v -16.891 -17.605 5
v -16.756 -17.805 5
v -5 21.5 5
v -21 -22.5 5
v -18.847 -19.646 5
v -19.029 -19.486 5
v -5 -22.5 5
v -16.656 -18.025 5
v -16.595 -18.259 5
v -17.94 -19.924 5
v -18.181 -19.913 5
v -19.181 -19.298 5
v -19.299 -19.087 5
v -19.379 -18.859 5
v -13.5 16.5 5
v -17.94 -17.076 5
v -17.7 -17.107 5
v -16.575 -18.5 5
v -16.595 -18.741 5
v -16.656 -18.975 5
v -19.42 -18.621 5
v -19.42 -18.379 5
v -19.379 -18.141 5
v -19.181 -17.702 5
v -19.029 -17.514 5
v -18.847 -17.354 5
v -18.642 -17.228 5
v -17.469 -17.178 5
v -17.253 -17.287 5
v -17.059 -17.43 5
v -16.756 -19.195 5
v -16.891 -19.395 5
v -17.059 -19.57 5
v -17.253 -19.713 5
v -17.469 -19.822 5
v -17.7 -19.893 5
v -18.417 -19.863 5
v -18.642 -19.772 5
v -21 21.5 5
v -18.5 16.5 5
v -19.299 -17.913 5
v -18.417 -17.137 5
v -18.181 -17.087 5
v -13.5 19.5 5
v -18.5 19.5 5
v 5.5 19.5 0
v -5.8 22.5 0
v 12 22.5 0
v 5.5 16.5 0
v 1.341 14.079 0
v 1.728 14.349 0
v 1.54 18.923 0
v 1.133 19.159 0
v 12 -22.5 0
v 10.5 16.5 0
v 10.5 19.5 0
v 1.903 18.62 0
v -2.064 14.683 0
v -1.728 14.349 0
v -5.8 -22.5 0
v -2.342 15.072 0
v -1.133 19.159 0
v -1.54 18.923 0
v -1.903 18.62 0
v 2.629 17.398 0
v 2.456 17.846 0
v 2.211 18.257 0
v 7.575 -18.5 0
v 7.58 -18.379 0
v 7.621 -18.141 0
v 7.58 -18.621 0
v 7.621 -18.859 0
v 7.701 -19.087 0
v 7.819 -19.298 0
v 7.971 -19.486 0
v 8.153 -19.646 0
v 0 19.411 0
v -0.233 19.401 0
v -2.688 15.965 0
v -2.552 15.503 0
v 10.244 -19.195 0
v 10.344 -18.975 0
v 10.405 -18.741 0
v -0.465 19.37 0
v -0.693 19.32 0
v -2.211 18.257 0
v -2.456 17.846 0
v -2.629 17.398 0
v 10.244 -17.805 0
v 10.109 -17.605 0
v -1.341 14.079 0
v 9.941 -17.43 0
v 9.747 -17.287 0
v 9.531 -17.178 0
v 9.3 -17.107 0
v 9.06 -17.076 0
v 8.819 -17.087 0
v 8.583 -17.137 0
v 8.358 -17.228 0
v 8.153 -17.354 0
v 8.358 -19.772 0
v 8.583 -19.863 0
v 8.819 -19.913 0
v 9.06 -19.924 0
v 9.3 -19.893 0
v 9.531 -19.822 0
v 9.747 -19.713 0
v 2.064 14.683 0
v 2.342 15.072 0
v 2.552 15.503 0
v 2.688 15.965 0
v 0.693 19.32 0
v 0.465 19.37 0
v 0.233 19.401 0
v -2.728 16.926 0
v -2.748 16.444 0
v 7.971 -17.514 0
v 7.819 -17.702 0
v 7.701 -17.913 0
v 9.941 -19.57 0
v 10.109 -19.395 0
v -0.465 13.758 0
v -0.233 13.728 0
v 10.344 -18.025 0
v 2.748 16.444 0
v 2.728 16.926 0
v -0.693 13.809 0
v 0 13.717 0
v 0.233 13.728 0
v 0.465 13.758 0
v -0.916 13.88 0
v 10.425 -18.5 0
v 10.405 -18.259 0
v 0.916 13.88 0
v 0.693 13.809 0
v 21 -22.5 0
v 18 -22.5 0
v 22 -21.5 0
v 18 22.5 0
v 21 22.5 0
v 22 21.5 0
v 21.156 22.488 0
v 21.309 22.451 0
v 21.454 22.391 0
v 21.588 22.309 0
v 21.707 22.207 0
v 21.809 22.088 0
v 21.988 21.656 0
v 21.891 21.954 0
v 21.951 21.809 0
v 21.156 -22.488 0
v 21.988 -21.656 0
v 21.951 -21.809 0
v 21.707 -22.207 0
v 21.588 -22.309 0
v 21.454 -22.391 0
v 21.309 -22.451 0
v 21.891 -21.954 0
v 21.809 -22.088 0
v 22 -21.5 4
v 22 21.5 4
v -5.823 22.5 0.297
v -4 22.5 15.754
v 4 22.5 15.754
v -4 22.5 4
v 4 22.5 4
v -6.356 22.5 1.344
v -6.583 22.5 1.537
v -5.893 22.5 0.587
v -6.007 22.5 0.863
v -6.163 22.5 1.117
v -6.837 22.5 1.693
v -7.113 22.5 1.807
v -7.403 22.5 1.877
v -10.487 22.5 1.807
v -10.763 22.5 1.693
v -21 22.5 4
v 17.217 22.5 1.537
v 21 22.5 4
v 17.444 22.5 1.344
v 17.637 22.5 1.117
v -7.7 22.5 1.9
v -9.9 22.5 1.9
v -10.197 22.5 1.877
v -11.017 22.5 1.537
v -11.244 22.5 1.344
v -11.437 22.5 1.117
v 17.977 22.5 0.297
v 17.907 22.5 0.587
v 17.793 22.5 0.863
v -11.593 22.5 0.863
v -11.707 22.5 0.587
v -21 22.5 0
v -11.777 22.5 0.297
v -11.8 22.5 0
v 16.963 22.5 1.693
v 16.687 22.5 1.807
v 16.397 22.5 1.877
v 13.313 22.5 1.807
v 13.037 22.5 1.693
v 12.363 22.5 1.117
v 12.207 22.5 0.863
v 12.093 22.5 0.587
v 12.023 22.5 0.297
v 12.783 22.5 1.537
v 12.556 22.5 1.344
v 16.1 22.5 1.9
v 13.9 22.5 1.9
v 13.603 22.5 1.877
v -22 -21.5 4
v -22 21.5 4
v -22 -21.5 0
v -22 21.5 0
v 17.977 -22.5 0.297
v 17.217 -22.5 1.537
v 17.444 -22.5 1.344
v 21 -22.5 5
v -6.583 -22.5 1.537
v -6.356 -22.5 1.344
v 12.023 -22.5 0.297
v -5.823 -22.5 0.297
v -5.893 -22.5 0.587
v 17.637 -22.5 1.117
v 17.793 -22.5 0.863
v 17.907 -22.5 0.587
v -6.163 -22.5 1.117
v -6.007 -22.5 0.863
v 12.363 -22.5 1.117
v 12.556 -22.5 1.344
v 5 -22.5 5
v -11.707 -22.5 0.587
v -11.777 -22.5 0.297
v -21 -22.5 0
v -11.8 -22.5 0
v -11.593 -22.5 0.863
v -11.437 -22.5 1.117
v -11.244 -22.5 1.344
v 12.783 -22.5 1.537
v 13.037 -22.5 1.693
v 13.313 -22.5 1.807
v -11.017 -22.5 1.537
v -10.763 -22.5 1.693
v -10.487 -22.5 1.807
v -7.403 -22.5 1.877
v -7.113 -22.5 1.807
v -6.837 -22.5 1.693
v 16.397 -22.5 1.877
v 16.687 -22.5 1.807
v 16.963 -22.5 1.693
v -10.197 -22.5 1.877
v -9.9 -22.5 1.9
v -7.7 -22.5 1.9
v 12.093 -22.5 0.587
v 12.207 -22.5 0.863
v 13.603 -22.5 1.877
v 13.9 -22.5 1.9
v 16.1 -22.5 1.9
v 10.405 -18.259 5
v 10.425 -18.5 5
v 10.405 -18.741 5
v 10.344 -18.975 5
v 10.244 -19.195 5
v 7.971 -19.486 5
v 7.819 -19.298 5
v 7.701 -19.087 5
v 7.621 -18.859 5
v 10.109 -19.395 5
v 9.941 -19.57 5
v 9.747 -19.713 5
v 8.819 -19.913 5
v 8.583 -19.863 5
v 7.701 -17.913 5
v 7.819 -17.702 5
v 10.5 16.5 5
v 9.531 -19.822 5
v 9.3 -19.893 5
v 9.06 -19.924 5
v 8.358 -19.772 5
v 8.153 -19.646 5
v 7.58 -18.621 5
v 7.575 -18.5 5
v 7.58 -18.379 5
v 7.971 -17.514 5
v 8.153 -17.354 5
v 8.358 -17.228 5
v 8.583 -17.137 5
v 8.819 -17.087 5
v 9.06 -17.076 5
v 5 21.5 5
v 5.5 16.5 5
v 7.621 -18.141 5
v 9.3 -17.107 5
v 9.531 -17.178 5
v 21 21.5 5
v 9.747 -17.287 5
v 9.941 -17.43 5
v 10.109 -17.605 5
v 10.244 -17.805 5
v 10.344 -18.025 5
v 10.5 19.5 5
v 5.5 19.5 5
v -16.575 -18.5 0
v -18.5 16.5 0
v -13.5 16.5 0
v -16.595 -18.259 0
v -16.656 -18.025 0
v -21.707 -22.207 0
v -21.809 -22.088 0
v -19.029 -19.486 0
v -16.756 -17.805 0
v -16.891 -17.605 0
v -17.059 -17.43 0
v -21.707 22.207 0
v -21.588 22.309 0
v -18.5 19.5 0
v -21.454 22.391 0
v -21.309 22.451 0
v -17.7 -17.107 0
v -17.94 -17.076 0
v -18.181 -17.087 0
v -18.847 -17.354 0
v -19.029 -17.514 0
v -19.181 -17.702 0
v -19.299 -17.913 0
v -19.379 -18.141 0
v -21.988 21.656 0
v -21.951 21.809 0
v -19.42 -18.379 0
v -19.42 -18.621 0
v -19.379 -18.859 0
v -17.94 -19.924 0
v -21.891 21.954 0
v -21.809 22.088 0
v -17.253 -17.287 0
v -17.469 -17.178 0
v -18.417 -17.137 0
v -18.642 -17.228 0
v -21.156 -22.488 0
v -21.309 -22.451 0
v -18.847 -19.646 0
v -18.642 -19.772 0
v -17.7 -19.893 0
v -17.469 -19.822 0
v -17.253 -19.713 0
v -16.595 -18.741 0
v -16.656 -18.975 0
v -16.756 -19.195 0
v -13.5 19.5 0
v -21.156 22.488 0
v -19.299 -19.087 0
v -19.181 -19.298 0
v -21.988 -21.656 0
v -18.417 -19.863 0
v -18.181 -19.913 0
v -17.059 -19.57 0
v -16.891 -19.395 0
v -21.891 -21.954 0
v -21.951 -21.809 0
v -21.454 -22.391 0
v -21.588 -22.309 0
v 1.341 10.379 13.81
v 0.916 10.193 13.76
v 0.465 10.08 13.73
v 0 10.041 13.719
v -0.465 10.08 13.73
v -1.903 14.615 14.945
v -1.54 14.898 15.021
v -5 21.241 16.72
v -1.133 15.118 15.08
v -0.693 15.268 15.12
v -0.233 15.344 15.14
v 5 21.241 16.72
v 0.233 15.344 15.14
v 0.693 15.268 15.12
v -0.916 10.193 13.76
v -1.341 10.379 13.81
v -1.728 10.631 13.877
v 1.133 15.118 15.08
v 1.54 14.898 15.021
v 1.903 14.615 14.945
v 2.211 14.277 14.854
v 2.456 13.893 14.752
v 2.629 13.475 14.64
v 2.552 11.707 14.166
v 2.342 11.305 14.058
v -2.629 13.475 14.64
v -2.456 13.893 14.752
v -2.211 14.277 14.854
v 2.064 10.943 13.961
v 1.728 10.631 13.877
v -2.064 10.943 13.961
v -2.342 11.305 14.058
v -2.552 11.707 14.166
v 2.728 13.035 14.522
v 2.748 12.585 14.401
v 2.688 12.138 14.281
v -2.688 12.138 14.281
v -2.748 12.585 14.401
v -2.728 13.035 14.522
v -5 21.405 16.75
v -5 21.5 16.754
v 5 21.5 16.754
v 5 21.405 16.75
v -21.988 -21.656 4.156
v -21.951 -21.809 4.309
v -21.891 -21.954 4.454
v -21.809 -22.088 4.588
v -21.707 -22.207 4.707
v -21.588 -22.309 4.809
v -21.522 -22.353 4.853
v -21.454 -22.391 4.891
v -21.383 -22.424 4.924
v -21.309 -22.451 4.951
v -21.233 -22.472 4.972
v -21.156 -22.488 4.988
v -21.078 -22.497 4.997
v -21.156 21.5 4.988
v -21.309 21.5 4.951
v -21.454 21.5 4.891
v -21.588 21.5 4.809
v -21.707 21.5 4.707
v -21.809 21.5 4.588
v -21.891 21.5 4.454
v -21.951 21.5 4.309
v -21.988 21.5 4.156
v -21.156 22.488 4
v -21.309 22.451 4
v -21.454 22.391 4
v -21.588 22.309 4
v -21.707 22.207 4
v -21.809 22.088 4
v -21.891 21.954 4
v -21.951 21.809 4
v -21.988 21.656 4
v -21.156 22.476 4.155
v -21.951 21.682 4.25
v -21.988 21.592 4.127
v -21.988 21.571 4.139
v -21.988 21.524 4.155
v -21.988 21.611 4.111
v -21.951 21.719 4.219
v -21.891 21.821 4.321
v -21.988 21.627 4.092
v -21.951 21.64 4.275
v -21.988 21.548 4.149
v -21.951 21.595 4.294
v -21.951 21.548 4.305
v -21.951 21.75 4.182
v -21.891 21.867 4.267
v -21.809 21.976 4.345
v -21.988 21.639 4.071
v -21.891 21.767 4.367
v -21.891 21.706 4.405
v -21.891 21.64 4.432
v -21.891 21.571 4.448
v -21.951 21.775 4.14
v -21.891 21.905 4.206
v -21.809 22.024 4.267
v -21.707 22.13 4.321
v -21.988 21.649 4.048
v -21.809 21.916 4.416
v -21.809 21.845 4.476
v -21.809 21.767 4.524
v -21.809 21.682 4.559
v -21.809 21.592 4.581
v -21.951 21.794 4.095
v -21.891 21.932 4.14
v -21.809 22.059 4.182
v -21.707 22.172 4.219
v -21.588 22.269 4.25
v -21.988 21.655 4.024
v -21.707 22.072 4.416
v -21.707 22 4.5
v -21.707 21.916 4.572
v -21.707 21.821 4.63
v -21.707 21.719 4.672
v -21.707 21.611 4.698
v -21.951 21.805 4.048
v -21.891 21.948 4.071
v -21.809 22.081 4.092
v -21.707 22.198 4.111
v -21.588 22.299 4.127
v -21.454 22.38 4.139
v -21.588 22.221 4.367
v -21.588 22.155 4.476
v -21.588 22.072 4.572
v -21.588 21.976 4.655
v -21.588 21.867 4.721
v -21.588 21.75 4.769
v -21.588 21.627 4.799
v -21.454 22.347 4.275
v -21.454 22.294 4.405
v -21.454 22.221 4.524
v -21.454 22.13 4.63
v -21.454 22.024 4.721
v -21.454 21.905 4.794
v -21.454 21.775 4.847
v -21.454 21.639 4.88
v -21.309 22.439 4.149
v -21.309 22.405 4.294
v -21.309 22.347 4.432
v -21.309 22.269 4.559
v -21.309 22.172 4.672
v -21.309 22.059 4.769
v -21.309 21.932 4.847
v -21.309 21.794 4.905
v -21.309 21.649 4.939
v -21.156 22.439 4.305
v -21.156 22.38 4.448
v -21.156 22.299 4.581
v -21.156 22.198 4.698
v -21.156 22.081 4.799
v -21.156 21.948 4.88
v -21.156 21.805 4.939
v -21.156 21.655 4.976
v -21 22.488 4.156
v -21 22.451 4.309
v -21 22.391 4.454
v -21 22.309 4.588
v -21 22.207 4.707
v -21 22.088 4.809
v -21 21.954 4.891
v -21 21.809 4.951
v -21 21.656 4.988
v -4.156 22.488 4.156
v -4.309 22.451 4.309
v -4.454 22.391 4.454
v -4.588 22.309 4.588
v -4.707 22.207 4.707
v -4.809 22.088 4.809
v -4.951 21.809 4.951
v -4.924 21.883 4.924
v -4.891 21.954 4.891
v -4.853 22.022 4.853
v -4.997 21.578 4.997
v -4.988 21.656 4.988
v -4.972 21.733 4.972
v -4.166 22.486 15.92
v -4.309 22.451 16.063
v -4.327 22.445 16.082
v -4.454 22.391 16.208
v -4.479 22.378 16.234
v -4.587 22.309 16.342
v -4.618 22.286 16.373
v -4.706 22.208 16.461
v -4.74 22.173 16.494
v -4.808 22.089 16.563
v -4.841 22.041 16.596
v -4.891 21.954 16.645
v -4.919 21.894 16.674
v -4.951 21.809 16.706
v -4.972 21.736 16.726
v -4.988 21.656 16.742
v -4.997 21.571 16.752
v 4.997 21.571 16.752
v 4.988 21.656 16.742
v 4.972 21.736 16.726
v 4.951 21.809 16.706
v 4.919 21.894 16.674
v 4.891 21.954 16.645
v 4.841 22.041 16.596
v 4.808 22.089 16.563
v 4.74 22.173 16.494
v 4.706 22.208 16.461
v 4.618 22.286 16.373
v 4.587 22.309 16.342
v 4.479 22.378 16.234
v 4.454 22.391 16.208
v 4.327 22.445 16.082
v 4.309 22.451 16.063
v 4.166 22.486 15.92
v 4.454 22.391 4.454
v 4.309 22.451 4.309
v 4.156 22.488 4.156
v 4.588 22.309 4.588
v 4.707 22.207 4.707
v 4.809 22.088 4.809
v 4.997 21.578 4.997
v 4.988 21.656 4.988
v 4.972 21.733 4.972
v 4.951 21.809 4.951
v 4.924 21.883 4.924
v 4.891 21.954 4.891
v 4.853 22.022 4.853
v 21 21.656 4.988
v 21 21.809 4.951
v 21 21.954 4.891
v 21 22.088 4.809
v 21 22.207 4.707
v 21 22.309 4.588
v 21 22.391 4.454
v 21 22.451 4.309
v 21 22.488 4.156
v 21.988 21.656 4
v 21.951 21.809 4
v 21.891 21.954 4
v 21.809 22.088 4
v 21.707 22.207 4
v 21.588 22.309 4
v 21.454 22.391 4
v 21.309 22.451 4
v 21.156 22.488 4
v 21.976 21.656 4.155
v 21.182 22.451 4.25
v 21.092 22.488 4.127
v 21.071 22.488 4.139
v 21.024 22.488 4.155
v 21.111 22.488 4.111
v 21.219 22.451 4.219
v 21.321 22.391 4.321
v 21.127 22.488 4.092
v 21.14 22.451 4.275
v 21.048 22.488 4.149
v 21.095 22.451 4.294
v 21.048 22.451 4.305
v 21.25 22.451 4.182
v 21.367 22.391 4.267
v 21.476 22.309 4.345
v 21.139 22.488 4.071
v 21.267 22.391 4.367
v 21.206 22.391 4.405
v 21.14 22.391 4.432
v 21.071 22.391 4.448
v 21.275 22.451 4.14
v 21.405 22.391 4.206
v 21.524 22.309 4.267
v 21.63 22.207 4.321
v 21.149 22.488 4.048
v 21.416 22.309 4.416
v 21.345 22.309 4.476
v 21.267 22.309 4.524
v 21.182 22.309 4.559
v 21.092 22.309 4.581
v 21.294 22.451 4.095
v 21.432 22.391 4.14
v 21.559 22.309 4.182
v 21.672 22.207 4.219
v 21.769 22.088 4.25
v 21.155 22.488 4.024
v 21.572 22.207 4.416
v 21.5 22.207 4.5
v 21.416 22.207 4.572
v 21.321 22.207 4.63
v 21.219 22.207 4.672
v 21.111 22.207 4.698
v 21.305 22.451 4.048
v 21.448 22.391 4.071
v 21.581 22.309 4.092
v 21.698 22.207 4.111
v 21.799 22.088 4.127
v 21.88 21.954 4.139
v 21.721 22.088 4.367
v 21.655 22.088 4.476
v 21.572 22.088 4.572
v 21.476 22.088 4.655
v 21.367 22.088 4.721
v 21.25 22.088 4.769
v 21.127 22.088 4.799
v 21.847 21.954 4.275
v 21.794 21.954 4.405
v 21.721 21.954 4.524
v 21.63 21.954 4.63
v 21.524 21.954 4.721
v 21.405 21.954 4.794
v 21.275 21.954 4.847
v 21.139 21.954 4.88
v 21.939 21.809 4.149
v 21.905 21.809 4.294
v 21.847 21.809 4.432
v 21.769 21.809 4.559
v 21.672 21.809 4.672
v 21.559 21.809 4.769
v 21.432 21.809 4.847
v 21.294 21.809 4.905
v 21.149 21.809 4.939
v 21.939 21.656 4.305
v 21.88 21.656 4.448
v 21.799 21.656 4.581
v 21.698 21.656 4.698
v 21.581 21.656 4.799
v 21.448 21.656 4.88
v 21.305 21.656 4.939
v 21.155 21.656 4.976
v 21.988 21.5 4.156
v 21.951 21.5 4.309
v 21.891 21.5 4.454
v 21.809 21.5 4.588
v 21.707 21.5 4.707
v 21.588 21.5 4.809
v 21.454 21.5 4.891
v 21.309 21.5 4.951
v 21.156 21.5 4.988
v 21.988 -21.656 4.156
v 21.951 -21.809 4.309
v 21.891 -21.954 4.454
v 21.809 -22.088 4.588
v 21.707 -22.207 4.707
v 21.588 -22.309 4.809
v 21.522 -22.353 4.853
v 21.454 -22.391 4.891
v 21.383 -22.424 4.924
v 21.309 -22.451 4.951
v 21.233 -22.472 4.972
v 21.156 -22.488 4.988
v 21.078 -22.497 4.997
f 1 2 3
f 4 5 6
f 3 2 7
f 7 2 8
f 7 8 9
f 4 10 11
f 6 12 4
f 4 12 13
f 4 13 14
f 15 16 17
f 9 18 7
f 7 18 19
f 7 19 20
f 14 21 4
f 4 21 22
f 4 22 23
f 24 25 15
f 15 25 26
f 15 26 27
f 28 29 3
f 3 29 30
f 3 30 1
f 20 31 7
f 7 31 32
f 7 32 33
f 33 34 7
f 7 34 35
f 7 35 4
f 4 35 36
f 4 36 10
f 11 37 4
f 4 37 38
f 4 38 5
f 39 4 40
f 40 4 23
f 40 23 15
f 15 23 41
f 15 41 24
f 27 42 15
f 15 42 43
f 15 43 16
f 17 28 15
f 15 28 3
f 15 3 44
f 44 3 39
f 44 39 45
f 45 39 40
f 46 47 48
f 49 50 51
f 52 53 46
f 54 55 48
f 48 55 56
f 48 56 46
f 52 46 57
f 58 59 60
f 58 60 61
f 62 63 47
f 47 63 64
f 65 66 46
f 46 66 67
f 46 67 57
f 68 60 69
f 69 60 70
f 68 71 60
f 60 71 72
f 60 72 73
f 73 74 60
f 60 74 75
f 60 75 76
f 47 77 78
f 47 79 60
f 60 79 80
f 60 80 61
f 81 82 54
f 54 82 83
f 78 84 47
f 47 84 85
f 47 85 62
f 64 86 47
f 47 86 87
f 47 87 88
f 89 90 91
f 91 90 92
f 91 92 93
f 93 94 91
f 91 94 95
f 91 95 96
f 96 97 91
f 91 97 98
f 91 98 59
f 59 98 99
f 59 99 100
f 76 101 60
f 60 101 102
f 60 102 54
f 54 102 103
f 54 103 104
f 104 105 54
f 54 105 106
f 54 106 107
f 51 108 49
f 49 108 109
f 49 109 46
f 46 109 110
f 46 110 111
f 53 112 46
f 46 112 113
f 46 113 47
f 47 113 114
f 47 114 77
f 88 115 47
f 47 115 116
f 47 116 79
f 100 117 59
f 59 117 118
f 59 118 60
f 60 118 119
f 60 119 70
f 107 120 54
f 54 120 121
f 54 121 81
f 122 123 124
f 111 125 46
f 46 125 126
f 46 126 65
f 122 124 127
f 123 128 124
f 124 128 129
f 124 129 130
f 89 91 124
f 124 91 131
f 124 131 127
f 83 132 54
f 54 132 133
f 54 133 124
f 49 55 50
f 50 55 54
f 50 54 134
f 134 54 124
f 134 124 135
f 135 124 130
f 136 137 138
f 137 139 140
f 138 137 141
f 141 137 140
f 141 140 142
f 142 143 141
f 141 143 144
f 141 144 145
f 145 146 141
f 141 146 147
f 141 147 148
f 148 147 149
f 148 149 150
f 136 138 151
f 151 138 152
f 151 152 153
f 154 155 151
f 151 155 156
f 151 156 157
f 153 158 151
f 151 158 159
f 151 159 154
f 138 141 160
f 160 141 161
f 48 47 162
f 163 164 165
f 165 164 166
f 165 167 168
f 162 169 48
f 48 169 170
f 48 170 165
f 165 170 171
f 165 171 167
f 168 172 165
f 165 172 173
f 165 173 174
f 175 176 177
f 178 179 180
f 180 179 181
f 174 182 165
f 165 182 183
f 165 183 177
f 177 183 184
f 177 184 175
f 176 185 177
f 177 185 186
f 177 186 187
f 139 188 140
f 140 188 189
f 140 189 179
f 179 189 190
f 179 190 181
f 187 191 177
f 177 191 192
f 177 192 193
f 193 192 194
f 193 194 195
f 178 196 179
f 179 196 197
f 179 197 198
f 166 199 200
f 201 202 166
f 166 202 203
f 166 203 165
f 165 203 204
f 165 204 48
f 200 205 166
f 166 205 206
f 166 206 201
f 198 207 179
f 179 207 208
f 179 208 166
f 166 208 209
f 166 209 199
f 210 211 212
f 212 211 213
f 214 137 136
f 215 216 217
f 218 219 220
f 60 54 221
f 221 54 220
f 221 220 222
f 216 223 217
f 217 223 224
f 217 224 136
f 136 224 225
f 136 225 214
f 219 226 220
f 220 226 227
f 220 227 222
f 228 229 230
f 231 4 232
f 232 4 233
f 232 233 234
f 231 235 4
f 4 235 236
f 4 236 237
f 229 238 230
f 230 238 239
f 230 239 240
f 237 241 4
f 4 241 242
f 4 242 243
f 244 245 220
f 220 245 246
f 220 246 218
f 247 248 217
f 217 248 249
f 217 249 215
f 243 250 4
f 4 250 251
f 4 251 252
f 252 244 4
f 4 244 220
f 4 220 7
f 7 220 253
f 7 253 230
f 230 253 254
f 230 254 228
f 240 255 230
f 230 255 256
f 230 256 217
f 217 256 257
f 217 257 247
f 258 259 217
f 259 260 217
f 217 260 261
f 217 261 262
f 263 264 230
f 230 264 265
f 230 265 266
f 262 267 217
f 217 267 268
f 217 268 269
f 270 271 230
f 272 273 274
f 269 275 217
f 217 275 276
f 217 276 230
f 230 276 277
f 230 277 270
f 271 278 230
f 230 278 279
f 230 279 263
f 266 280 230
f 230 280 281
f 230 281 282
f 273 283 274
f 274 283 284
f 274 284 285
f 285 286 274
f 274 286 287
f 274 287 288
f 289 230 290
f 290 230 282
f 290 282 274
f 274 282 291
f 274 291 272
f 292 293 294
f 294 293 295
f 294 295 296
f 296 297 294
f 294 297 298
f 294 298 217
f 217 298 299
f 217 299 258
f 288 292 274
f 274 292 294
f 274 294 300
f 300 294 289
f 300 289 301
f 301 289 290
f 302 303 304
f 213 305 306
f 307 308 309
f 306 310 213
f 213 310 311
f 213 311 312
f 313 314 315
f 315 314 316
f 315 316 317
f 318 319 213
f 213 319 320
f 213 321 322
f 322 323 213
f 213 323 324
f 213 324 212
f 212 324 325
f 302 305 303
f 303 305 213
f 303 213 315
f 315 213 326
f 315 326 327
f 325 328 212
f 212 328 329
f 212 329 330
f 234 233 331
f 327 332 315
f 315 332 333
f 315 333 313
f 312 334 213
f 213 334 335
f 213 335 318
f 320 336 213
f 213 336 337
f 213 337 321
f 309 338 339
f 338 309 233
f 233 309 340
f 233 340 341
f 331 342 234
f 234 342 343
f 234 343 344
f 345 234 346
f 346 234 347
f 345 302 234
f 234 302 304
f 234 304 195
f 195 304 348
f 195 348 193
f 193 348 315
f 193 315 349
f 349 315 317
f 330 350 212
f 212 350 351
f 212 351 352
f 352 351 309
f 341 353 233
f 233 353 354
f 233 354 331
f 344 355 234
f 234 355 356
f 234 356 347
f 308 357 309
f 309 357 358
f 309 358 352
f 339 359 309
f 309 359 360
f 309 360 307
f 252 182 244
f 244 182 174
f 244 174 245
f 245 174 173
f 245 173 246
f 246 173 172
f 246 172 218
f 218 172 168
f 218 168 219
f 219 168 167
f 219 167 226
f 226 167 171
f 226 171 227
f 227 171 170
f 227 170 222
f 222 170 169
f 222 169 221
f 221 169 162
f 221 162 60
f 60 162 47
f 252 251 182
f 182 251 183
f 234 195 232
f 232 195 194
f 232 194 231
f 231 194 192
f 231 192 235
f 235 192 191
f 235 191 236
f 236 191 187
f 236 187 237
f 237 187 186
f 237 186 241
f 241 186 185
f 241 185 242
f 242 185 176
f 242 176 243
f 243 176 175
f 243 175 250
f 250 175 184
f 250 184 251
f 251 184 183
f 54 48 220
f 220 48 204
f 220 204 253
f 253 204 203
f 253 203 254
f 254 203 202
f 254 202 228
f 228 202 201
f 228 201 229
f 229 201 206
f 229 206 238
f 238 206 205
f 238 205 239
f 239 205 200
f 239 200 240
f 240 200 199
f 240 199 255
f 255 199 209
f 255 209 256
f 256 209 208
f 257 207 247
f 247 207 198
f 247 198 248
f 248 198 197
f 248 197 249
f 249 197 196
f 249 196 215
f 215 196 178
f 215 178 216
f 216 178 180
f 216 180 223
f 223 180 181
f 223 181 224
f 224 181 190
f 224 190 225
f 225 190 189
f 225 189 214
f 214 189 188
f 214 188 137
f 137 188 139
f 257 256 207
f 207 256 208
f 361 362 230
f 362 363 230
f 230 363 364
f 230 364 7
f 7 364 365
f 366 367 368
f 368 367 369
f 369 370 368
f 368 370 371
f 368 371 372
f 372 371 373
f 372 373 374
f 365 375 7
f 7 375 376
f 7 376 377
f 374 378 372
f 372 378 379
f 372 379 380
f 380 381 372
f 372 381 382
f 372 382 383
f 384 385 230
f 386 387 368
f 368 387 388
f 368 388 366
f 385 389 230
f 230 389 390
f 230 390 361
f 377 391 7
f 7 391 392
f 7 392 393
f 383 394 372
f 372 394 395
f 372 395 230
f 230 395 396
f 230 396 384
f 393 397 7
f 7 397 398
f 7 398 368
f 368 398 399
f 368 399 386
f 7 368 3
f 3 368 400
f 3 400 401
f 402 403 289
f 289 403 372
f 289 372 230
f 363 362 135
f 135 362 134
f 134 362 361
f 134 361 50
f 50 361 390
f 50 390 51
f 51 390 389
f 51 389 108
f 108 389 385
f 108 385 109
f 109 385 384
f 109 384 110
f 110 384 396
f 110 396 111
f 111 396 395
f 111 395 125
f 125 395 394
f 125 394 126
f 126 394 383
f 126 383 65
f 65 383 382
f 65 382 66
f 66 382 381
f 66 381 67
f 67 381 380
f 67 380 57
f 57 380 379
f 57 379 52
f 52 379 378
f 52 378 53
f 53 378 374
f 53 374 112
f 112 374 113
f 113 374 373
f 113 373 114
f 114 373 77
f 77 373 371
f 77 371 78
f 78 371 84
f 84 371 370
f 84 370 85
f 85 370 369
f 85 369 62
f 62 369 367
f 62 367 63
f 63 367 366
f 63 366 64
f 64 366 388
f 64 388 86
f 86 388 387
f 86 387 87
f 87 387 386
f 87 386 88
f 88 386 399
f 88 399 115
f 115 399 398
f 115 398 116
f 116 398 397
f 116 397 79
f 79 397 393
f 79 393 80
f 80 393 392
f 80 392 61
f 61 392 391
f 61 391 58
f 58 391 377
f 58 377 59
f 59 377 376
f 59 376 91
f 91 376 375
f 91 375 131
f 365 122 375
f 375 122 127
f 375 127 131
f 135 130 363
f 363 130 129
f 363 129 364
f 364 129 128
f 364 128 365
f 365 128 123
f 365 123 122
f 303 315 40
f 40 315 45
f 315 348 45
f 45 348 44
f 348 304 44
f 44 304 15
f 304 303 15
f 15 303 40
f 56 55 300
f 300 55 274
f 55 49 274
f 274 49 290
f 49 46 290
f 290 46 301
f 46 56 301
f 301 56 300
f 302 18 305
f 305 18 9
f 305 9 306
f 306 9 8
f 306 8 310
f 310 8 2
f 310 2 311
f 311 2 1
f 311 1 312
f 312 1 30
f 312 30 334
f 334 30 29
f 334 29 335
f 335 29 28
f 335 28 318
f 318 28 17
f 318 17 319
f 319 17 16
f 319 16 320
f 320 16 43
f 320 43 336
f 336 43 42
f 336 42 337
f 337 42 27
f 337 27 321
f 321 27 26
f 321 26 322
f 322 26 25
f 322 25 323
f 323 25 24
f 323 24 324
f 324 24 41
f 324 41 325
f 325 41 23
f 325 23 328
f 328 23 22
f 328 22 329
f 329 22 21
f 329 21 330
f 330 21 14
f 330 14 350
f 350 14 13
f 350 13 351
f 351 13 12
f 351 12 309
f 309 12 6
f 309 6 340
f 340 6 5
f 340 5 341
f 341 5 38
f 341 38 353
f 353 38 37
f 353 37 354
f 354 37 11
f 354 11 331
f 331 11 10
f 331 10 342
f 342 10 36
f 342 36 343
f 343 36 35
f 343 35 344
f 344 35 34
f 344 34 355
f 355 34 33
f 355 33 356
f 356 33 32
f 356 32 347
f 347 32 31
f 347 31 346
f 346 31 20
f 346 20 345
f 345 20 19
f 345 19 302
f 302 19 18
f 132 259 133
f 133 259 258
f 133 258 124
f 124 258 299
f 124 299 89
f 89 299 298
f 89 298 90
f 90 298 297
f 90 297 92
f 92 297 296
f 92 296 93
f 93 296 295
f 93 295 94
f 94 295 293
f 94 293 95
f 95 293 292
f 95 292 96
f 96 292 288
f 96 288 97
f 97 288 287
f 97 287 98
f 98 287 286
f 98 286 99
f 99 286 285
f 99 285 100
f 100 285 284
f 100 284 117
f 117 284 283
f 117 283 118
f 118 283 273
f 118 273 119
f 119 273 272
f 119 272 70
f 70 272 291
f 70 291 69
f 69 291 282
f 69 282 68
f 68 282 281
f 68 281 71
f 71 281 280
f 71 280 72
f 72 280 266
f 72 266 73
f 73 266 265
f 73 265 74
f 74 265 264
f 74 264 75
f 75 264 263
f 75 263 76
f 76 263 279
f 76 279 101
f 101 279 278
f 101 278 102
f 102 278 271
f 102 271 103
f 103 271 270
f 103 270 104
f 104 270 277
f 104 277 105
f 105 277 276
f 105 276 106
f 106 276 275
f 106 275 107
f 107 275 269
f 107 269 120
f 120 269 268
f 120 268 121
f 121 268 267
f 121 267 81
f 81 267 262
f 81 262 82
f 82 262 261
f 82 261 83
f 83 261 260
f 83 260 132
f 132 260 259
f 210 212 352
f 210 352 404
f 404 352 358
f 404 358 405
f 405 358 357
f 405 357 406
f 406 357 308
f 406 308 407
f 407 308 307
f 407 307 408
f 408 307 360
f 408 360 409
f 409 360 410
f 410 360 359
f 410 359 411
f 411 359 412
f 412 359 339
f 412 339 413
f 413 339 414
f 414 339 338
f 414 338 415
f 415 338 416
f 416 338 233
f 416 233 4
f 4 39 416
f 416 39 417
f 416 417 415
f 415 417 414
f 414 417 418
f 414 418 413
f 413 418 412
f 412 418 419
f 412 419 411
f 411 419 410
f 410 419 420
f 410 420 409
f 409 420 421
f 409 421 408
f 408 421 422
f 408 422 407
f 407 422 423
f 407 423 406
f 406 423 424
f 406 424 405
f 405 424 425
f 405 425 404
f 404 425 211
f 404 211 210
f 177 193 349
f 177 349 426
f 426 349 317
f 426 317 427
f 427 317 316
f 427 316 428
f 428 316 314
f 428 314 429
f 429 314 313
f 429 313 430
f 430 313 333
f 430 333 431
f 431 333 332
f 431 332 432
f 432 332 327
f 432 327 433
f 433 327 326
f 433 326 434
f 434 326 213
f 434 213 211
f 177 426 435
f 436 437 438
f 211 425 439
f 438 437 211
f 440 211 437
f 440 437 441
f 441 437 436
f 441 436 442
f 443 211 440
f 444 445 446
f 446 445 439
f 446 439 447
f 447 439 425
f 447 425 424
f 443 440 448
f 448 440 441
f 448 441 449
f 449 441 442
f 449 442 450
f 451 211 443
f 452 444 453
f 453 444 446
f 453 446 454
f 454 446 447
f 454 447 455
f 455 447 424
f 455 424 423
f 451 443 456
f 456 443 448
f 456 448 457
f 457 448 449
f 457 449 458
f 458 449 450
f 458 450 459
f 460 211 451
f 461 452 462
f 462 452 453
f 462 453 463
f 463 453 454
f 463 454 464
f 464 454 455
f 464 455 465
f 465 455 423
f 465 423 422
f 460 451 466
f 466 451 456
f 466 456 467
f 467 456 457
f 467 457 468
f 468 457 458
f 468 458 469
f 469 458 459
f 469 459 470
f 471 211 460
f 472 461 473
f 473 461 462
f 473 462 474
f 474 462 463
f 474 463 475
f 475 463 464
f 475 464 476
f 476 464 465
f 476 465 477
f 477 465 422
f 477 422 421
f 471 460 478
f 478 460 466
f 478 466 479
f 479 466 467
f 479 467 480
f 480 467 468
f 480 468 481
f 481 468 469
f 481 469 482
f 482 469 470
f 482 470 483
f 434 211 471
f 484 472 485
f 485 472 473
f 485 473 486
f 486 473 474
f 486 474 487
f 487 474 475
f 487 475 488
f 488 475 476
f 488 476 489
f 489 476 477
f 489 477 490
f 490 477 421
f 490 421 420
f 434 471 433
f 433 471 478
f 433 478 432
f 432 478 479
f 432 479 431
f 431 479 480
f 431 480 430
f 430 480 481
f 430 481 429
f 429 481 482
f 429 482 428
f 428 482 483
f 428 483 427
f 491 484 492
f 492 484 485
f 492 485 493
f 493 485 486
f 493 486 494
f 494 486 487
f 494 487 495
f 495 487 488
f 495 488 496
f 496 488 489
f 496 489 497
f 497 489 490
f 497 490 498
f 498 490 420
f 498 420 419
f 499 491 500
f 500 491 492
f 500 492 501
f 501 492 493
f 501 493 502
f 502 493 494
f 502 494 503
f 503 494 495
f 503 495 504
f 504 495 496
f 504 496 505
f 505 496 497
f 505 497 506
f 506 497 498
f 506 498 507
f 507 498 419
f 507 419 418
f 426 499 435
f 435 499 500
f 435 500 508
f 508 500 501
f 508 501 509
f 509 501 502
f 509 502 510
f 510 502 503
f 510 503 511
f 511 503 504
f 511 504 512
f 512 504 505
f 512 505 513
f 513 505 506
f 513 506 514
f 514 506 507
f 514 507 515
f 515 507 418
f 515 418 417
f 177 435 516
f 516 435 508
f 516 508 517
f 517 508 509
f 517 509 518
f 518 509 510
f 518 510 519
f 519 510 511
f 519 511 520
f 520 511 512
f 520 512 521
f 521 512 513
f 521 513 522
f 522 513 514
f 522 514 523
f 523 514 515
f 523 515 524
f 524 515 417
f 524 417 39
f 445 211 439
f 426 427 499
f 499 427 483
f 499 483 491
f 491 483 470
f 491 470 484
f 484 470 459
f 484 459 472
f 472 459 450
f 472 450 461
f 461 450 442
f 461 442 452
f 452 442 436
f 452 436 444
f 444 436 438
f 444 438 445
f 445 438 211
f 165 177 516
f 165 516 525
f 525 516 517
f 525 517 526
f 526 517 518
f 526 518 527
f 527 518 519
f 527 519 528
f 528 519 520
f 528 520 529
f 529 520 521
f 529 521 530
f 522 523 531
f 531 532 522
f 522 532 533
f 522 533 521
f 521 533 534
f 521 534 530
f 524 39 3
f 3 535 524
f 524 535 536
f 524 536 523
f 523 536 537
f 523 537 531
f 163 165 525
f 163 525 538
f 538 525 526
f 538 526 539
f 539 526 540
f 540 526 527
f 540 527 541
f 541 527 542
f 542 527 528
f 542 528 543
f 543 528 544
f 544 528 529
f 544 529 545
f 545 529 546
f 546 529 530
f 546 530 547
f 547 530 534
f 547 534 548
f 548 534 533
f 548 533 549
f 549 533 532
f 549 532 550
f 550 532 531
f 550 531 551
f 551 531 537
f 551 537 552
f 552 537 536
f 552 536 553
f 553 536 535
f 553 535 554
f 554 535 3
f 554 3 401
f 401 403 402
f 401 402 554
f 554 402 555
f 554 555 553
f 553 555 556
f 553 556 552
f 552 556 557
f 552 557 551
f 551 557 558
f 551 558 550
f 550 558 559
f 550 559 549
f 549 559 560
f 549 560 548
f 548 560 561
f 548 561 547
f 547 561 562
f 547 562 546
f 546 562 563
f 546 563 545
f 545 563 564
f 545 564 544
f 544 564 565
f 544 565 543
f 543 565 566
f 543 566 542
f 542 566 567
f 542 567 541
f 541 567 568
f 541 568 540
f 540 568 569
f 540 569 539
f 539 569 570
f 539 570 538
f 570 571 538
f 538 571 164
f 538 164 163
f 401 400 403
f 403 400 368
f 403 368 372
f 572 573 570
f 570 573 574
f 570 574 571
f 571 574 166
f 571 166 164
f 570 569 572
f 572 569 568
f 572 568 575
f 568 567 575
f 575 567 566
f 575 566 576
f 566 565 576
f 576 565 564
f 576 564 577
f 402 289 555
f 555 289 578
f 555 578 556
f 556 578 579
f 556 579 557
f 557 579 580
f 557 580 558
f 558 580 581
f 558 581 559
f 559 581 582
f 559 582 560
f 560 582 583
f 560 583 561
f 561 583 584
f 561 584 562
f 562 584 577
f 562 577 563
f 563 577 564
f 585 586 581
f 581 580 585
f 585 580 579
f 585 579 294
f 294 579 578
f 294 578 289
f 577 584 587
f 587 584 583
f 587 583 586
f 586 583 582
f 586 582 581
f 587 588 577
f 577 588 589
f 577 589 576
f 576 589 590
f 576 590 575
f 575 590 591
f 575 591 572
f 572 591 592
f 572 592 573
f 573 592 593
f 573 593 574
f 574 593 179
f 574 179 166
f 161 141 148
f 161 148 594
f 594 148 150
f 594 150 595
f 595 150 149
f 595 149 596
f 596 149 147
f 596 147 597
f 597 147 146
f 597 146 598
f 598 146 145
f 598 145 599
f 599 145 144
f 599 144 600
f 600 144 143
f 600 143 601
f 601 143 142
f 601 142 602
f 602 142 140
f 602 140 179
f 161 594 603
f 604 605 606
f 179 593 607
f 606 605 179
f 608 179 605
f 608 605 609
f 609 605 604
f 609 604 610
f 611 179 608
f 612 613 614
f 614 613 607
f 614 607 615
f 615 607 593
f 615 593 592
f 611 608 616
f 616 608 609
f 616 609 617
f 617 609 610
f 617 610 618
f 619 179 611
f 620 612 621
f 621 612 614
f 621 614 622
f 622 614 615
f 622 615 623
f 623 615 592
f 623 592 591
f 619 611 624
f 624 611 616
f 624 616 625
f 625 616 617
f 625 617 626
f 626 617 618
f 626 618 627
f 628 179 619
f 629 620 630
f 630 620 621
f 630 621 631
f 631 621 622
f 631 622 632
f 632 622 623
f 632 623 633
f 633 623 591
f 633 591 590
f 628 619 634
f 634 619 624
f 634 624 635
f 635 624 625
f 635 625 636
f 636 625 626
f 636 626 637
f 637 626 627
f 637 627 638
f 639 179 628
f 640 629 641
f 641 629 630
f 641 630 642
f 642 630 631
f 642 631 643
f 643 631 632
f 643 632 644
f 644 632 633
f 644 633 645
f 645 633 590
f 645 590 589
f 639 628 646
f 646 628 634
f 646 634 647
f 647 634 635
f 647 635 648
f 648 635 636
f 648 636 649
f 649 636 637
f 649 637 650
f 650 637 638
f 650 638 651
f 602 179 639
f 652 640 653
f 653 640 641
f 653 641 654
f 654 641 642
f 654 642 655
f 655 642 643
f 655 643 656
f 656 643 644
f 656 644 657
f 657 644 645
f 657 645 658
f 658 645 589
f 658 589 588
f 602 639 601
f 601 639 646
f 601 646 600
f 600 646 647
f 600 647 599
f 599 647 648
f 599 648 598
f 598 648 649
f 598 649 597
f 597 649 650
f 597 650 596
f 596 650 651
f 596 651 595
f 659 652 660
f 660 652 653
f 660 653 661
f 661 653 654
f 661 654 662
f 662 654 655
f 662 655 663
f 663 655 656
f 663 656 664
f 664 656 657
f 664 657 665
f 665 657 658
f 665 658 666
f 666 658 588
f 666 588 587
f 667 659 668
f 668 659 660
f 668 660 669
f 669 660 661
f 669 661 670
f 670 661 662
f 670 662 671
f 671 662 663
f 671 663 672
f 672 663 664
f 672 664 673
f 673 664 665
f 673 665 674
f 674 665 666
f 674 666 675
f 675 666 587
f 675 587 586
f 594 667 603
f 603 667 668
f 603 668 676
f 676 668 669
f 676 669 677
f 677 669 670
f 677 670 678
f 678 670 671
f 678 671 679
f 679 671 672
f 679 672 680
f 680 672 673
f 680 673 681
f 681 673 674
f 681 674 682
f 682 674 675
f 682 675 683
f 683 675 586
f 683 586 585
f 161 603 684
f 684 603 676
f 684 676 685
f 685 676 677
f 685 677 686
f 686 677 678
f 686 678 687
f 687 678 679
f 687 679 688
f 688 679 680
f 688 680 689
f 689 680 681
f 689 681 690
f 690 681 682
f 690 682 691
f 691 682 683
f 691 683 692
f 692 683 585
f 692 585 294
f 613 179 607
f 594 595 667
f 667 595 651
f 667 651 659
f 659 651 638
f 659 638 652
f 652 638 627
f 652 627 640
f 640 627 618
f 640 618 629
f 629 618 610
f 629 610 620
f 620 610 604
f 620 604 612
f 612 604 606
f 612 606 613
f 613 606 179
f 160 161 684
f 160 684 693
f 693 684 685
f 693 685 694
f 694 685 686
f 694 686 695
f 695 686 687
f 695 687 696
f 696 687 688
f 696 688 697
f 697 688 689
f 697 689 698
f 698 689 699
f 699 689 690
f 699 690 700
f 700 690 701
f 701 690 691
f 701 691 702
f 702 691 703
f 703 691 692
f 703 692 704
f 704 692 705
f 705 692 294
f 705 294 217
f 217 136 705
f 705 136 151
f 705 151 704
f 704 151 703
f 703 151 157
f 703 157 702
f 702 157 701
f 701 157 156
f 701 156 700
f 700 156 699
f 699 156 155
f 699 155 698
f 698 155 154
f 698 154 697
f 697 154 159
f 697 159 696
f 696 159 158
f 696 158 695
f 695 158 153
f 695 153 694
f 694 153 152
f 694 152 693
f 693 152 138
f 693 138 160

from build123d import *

# Parameters (mm, degrees)
SKETCH1_W                           = 44
SKETCH1_H                           = 45
BASE_DEPTH                          = 5
WIRE_GROOVES_DEPTH                  = 51.338851795
SLANTED_START                       = -22
SLANTED_SCREW_PLATFORM_DEPTH        = 5
SKETCH5_R                           = 2.75
MOUNTING_HOLE_SCREW_INSERTION_DEPTH = 36.040152348
SKETCH6_W                           = 5
SKETCH6_H                           = 3
ZIP_TIE_SLOTS_DEPTH                 = 34.699235283
SKETCH7_R                           = 1.425
MOUNT_CLAMPING_HOLES_DEPTH          = 34.699235283
EDGE_FILLETS_R                      = 1


with BuildPart() as part:
    # Sketch1 → Base (new body)
    with BuildSketch(Plane.XY):
        Rectangle(SKETCH1_W, SKETCH1_H)
    extrude(amount=BASE_DEPTH)

    # Sketch2 → Wire Grooves (cut, through all)
    with BuildSketch(Plane(origin=(0, 22.5, 0), x_dir=(1, 0, 0), z_dir=(0, 1, 0))):
        with BuildLine():
            Line((12, 0), (18, 0))
            ThreePointArc((18, 0), (17.443502884, -1.343502884), (16.1, -1.9))
            Line((16.1, -1.9), (13.9, -1.9))
            ThreePointArc((13.9, -1.9), (12.556497116, -1.343502884), (12, 0))
        make_face()
        with BuildLine():
            Line((-7.7, -1.9), (-9.9, -1.9))
            ThreePointArc((-9.9, -1.9), (-11.243502884, -1.343502884), (-11.8, 0))
            Line((-11.8, 0), (-5.8, 0))
            ThreePointArc((-5.8, 0), (-6.356497116, -1.343502884), (-7.7, -1.9))
        make_face()
    extrude(amount=-WIRE_GROOVES_DEPTH, mode=Mode.SUBTRACT)

    # Sketch4 → Slanted Screw Platform (add, symmetric)
    with BuildSketch(Plane(origin=(22, 0, 0), x_dir=(0, 0, -1), z_dir=(1, 0, 0)).offset(SLANTED_START)):
        Polygon((-5, -22.5), (-5, 22.5), (-17.057713659, 22.5), align=None)
    extrude(amount=SLANTED_SCREW_PLATFORM_DEPTH, both=True)

    # Sketch5 → Mounting Hole Screw Insertion (cut, through all)
    with BuildSketch(Plane(origin=(0, -2.757214207, 10.290063509), x_dir=(1, 0, 0), z_dir=(0, -0.2588190451025216, 0.9659258262890681))):
        with Locations(Location((0, 16, 0), (0, 0, 270))):
            Circle(SKETCH5_R)
    extrude(amount=-MOUNTING_HOLE_SCREW_INSERTION_DEPTH, mode=Mode.SUBTRACT)

    # Sketch6 → Zip Tie Slots (cut, through all)
    with BuildSketch(Plane.XY.offset(5)):
        with Locations((-16, 18)):
            Rectangle(SKETCH6_W, SKETCH6_H)
        with Locations((8, 18)):
            Rectangle(SKETCH6_W, SKETCH6_H)
    extrude(amount=-ZIP_TIE_SLOTS_DEPTH, mode=Mode.SUBTRACT)

    # Sketch7 → Mount Clamping Holes (cut, through all)
    with BuildSketch(Plane.XY.offset(5)):
        with Locations((-18, -18.5)):
            Circle(SKETCH7_R)
        with Locations(Location((9, -18.5, 0), (0, 0, 180))):
            Circle(SKETCH7_R)
    extrude(amount=-MOUNT_CLAMPING_HOLES_DEPTH, mode=Mode.SUBTRACT)

    # Edge Fillets
    edge_fillets_edges = [part.edges().sort_by_distance(p)[0] for p in [
        (-22, 0, 5),
        (-13.5, 22.5, 5),
        (-5, 22.5, 11.02885683),
        (0, 22.5, 17.057713659),
        (22, 0, 5),
        (5, 22.5, 11.02885683),
        (22, -22.5, 2.5),
        (-22, -22.5, 2.5),
        (-22, 22.5, 2.5),
        (22, 22.5, 2.5),
        (13.5, 22.5, 5),
    ]]
    fillet(edge_fillets_edges, radius=EDGE_FILLETS_R)


solid = part.part
